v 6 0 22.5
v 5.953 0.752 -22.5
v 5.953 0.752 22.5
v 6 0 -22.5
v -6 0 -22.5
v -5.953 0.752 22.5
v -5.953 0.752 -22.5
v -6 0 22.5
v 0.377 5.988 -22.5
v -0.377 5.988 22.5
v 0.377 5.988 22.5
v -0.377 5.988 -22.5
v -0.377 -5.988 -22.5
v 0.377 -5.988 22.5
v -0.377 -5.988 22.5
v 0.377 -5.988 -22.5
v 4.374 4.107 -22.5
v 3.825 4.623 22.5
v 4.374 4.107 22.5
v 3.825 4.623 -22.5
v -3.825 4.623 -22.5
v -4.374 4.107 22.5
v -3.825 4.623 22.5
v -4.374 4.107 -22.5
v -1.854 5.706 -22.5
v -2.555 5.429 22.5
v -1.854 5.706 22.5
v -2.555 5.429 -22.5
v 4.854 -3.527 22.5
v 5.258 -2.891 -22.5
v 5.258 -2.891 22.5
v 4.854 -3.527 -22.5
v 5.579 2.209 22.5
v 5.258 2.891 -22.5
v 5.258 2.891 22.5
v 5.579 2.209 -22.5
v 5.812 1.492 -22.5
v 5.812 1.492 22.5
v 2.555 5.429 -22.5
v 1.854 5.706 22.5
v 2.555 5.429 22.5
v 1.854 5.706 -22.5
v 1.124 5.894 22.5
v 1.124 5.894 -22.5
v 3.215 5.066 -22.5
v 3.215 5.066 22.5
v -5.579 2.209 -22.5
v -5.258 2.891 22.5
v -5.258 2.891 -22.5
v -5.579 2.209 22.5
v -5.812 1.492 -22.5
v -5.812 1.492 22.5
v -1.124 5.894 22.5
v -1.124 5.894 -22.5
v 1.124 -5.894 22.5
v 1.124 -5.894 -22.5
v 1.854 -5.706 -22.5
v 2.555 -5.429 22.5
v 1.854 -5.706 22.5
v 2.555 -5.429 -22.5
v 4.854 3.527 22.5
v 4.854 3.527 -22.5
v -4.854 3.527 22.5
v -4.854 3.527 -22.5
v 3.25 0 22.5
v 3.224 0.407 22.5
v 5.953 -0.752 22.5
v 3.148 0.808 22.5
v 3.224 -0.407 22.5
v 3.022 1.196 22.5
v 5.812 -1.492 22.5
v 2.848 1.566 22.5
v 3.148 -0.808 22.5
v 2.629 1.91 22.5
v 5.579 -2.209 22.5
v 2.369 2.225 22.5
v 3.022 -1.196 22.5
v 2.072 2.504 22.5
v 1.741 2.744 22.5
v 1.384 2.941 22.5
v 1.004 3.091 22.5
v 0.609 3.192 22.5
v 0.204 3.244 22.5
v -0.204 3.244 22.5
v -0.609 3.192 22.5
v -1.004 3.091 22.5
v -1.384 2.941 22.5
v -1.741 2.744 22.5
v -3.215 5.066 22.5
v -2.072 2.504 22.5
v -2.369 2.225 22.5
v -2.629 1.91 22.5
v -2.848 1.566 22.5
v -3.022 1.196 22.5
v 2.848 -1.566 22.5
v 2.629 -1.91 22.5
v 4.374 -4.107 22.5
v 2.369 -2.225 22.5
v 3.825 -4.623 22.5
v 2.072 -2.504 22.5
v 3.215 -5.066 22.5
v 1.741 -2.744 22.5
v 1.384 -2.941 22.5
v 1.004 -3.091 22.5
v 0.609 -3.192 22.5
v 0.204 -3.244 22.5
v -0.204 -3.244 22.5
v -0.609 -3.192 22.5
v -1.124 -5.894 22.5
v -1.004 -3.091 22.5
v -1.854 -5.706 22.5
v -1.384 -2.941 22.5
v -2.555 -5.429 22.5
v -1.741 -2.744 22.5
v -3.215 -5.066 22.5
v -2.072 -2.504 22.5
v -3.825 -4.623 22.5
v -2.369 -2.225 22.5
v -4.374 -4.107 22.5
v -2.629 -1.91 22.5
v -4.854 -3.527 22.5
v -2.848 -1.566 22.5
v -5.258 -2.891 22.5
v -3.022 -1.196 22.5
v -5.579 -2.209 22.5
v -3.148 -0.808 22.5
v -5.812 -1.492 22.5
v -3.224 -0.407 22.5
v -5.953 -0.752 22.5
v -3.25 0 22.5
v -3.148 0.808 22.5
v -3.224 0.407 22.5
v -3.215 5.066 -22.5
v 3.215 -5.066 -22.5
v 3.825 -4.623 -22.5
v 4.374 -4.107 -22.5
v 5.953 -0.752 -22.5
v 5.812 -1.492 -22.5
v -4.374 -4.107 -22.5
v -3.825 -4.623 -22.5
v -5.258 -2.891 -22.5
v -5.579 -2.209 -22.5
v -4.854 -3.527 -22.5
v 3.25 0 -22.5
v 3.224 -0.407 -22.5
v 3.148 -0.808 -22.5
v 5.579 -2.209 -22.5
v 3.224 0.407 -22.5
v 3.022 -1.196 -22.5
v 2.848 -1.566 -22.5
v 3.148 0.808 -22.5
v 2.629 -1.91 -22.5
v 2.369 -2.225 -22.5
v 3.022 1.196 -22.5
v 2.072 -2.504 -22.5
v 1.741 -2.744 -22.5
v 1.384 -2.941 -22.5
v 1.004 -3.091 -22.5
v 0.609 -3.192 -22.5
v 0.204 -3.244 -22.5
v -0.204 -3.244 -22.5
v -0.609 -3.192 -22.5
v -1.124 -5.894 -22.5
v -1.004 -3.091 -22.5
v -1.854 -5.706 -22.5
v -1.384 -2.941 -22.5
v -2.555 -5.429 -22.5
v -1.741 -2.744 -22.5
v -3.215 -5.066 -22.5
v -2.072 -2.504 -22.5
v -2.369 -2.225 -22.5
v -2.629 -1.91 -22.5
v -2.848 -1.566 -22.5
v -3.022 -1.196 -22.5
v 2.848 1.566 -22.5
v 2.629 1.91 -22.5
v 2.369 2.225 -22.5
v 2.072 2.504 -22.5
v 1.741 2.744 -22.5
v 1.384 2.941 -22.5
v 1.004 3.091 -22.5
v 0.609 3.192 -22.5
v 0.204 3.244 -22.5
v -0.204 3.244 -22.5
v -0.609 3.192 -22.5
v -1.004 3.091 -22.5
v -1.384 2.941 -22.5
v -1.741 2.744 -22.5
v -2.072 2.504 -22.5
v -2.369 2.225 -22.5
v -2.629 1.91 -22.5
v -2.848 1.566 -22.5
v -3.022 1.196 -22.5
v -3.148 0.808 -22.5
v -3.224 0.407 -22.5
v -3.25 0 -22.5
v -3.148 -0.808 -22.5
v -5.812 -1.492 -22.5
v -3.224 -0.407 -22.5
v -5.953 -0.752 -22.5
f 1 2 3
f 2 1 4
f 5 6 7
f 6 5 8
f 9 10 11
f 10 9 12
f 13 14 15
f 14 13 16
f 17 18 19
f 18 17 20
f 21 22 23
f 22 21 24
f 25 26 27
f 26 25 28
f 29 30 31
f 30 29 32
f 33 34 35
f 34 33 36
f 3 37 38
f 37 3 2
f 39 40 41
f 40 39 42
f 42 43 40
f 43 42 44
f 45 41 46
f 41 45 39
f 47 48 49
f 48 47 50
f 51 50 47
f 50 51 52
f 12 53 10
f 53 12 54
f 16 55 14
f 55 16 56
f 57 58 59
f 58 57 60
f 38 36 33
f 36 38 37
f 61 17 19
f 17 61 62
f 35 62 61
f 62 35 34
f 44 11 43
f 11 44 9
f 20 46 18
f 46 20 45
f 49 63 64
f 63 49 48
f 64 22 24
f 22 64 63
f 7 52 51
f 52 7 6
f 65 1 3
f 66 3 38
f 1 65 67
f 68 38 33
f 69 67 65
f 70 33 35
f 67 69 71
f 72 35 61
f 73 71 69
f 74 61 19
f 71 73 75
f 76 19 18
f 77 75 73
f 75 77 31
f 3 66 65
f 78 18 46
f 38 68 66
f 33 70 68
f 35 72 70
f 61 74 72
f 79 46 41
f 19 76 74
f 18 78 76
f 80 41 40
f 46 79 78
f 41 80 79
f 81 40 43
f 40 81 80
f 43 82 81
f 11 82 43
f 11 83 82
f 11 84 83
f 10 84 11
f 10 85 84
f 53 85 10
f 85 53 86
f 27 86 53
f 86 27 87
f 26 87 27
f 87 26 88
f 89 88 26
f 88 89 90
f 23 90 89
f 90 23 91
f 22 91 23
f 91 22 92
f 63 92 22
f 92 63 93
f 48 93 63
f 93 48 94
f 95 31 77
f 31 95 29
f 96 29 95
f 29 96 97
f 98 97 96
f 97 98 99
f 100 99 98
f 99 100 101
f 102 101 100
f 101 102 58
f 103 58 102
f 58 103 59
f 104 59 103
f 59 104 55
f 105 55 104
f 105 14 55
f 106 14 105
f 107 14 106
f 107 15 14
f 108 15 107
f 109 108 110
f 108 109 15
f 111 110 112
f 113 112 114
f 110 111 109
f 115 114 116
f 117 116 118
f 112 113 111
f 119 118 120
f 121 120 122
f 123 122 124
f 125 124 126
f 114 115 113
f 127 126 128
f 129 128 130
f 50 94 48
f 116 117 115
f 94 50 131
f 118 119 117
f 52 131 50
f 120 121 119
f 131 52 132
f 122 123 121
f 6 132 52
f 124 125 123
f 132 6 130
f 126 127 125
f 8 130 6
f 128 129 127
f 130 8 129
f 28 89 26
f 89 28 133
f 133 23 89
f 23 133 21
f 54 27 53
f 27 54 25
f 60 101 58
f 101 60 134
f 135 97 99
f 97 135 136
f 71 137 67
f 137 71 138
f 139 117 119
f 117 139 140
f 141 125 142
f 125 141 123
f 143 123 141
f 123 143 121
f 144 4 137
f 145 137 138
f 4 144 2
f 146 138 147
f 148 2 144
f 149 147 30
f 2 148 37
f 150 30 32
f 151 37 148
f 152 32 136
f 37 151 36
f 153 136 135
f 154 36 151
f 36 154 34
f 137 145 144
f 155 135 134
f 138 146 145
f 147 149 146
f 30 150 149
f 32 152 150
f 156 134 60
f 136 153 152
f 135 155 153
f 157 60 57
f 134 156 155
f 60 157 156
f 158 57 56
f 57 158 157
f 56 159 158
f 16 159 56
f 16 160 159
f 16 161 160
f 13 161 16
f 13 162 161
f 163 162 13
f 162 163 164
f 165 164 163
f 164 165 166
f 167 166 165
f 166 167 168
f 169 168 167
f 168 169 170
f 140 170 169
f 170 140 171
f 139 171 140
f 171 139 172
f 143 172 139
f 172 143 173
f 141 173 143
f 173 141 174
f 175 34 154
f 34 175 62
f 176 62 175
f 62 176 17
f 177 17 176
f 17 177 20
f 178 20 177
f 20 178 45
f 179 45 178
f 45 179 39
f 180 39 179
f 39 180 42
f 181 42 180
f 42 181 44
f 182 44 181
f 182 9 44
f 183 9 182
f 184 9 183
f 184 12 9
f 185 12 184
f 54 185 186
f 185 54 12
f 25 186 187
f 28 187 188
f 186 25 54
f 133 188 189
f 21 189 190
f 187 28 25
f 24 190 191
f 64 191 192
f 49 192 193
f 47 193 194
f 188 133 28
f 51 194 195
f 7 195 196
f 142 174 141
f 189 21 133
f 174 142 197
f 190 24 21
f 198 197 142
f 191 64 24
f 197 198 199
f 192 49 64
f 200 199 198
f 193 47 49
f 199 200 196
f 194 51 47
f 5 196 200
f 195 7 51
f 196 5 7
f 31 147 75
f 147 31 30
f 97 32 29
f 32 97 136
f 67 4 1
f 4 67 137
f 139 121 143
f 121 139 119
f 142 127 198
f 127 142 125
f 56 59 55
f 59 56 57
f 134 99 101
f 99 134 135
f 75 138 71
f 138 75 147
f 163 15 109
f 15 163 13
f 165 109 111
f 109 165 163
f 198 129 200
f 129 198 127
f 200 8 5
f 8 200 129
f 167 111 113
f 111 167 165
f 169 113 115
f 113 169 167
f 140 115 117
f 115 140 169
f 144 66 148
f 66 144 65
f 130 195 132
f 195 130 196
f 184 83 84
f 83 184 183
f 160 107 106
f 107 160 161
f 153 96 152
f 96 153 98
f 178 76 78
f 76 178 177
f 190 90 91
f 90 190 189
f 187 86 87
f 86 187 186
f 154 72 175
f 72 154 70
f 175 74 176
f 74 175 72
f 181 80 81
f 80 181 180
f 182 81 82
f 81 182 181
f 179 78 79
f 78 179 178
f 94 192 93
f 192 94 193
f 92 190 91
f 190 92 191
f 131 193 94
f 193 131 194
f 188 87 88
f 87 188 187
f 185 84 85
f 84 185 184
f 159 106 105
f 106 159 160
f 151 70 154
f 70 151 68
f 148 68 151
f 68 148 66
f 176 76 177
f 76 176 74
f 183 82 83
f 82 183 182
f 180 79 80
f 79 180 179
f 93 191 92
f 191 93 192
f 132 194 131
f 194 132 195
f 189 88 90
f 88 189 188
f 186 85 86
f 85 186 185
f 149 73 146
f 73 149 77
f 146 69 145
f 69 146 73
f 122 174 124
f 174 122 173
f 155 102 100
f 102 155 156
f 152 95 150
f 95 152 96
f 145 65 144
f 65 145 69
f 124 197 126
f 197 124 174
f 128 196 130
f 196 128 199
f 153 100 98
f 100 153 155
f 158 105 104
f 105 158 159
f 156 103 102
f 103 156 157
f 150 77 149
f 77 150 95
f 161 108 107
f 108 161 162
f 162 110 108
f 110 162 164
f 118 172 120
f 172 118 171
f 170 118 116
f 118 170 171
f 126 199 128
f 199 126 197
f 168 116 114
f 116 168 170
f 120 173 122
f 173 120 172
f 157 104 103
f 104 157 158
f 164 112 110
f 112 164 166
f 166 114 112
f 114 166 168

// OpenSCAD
$fn = 50;


difference() {
	union() {
		translate(v = [0, 0, -22.5000000000]) {
			cylinder(h = 45, r = 6.0000000000);
		}
	}
	union() {
		translate(v = [0, 0, -100.0000000000]) {
			cylinder(h = 200, r = 3.2500000000);
		}
	}
}
